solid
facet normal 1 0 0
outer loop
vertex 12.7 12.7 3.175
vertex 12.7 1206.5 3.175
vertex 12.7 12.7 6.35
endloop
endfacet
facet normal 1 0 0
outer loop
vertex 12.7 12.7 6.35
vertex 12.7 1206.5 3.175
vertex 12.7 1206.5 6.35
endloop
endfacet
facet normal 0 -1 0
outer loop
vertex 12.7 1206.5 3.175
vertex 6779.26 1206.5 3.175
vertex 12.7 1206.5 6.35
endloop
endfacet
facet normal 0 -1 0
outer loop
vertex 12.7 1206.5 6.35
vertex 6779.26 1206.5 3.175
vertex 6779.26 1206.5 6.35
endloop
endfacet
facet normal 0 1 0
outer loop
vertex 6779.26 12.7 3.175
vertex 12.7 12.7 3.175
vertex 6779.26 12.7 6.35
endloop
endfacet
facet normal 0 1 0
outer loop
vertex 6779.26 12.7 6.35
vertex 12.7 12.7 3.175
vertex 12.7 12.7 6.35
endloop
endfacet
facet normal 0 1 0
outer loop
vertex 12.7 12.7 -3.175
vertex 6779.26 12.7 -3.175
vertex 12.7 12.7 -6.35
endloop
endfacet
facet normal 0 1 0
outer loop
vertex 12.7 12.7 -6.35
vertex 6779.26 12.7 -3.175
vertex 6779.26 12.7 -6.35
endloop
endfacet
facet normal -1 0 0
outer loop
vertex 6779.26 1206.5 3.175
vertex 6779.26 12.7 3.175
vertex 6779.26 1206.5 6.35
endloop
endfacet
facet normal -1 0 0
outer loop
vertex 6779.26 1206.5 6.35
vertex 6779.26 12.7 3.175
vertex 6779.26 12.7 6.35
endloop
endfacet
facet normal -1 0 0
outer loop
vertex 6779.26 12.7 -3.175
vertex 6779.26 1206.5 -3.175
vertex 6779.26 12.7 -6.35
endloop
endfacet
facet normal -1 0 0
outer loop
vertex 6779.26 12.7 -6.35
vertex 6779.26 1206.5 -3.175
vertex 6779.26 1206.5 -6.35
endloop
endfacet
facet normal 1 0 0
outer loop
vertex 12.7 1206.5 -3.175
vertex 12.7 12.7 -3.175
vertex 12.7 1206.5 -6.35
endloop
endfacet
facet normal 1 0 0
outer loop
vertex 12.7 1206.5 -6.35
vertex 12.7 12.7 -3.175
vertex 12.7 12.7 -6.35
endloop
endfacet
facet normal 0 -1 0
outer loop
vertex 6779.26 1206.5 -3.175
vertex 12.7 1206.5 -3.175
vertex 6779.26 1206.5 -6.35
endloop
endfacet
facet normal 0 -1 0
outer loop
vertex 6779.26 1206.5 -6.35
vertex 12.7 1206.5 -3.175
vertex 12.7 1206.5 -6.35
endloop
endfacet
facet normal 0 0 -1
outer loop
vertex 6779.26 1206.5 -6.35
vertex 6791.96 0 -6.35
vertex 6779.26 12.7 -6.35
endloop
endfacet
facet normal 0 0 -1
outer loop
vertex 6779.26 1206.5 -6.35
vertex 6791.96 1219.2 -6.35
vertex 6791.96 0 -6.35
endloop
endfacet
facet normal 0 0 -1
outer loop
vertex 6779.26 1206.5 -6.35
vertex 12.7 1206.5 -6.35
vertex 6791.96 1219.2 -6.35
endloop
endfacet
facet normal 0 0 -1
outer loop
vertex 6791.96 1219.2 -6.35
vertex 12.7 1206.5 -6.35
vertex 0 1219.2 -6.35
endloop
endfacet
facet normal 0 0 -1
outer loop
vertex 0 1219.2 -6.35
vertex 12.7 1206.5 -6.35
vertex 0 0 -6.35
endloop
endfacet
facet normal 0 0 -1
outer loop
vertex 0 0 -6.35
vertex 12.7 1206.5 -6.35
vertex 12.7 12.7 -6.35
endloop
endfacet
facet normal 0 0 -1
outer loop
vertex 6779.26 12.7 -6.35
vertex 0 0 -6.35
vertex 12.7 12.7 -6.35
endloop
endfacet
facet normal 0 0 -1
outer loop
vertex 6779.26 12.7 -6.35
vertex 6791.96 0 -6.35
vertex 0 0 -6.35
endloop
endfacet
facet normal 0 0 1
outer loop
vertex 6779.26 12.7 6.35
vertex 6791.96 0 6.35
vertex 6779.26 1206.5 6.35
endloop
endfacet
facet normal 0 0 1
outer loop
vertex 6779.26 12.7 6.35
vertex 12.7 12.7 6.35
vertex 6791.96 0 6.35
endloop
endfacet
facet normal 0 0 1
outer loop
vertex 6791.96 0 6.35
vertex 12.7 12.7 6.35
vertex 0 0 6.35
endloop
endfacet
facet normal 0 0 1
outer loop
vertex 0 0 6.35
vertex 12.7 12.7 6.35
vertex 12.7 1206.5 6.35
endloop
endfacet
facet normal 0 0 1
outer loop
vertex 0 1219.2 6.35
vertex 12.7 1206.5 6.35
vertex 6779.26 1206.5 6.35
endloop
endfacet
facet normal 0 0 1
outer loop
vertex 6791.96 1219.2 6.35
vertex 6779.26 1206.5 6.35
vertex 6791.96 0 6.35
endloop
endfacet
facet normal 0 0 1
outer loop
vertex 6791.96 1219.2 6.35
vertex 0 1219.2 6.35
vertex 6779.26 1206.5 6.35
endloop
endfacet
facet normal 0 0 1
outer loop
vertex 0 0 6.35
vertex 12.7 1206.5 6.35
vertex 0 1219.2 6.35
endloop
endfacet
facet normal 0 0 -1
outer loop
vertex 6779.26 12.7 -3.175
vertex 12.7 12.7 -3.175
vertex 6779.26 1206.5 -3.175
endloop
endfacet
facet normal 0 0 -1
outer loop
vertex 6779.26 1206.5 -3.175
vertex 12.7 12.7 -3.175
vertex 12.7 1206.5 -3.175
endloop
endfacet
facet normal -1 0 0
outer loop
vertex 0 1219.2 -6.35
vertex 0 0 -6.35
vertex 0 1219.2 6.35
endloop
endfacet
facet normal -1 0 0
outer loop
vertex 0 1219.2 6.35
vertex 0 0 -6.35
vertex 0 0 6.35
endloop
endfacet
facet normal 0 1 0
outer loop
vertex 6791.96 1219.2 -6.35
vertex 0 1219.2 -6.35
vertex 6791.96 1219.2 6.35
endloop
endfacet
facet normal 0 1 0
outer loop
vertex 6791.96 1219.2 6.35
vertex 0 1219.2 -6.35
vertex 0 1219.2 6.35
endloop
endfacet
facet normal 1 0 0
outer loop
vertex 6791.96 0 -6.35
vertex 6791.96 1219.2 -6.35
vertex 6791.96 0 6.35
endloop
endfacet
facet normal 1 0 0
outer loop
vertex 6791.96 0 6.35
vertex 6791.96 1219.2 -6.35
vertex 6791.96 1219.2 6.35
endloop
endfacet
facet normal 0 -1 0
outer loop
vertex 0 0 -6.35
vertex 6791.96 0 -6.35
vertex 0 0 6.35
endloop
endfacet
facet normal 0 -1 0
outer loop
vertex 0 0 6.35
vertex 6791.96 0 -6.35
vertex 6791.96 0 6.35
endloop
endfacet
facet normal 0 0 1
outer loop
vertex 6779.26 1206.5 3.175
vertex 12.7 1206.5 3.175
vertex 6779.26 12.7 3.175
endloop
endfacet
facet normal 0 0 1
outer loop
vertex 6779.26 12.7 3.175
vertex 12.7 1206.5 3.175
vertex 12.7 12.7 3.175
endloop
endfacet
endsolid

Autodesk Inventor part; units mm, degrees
ref_plane "YZ Plane" through (0, 0, 0) normal (1, 0, 0) x (0, 1, 0)
ref_plane "XZ Plane" through (0, 0, 0) normal (0, 1, 0) x (-1, 0, 0)
ref_plane "XY Plane" through (0, 0, 0) normal (0, 0, 1) x (1, 0, 0)
sketch "Sketch1" plane through (0, 0, 0) normal (0, 0, 1) x (1, 0, 0)
  line L0 (0, 0) -> (6791.96, 0)
  line L1 (6791.96, 0) -> (6791.96, 1219.2)
  line L2 (6791.96, 1219.2) -> (0, 1219.2)
  line L3 (0, 1219.2) -> (0, 0)
  line L4 (12.7, 1206.5) -> (6779.26, 1206.5)
  line L5 (6779.26, 1206.5) -> (6779.26, 12.7)
  line L6 (6779.26, 12.7) -> (12.7, 12.7)
  line L7 (12.7, 12.7) -> (12.7, 1206.5)
  dimension "d0" = 6791.96
  dimension "d1" = 1219.2
  dimension "d4" = 12.7
extrude "Extrusion1" add sketch "Sketch1" along normal mid plane 6.35 contours L3 L2 L1 L0 | L4 L5 L6 L7
extrude "Extrusion2" add sketch "Sketch1" along normal mid plane 12.7
properties part number "GE-12104"
